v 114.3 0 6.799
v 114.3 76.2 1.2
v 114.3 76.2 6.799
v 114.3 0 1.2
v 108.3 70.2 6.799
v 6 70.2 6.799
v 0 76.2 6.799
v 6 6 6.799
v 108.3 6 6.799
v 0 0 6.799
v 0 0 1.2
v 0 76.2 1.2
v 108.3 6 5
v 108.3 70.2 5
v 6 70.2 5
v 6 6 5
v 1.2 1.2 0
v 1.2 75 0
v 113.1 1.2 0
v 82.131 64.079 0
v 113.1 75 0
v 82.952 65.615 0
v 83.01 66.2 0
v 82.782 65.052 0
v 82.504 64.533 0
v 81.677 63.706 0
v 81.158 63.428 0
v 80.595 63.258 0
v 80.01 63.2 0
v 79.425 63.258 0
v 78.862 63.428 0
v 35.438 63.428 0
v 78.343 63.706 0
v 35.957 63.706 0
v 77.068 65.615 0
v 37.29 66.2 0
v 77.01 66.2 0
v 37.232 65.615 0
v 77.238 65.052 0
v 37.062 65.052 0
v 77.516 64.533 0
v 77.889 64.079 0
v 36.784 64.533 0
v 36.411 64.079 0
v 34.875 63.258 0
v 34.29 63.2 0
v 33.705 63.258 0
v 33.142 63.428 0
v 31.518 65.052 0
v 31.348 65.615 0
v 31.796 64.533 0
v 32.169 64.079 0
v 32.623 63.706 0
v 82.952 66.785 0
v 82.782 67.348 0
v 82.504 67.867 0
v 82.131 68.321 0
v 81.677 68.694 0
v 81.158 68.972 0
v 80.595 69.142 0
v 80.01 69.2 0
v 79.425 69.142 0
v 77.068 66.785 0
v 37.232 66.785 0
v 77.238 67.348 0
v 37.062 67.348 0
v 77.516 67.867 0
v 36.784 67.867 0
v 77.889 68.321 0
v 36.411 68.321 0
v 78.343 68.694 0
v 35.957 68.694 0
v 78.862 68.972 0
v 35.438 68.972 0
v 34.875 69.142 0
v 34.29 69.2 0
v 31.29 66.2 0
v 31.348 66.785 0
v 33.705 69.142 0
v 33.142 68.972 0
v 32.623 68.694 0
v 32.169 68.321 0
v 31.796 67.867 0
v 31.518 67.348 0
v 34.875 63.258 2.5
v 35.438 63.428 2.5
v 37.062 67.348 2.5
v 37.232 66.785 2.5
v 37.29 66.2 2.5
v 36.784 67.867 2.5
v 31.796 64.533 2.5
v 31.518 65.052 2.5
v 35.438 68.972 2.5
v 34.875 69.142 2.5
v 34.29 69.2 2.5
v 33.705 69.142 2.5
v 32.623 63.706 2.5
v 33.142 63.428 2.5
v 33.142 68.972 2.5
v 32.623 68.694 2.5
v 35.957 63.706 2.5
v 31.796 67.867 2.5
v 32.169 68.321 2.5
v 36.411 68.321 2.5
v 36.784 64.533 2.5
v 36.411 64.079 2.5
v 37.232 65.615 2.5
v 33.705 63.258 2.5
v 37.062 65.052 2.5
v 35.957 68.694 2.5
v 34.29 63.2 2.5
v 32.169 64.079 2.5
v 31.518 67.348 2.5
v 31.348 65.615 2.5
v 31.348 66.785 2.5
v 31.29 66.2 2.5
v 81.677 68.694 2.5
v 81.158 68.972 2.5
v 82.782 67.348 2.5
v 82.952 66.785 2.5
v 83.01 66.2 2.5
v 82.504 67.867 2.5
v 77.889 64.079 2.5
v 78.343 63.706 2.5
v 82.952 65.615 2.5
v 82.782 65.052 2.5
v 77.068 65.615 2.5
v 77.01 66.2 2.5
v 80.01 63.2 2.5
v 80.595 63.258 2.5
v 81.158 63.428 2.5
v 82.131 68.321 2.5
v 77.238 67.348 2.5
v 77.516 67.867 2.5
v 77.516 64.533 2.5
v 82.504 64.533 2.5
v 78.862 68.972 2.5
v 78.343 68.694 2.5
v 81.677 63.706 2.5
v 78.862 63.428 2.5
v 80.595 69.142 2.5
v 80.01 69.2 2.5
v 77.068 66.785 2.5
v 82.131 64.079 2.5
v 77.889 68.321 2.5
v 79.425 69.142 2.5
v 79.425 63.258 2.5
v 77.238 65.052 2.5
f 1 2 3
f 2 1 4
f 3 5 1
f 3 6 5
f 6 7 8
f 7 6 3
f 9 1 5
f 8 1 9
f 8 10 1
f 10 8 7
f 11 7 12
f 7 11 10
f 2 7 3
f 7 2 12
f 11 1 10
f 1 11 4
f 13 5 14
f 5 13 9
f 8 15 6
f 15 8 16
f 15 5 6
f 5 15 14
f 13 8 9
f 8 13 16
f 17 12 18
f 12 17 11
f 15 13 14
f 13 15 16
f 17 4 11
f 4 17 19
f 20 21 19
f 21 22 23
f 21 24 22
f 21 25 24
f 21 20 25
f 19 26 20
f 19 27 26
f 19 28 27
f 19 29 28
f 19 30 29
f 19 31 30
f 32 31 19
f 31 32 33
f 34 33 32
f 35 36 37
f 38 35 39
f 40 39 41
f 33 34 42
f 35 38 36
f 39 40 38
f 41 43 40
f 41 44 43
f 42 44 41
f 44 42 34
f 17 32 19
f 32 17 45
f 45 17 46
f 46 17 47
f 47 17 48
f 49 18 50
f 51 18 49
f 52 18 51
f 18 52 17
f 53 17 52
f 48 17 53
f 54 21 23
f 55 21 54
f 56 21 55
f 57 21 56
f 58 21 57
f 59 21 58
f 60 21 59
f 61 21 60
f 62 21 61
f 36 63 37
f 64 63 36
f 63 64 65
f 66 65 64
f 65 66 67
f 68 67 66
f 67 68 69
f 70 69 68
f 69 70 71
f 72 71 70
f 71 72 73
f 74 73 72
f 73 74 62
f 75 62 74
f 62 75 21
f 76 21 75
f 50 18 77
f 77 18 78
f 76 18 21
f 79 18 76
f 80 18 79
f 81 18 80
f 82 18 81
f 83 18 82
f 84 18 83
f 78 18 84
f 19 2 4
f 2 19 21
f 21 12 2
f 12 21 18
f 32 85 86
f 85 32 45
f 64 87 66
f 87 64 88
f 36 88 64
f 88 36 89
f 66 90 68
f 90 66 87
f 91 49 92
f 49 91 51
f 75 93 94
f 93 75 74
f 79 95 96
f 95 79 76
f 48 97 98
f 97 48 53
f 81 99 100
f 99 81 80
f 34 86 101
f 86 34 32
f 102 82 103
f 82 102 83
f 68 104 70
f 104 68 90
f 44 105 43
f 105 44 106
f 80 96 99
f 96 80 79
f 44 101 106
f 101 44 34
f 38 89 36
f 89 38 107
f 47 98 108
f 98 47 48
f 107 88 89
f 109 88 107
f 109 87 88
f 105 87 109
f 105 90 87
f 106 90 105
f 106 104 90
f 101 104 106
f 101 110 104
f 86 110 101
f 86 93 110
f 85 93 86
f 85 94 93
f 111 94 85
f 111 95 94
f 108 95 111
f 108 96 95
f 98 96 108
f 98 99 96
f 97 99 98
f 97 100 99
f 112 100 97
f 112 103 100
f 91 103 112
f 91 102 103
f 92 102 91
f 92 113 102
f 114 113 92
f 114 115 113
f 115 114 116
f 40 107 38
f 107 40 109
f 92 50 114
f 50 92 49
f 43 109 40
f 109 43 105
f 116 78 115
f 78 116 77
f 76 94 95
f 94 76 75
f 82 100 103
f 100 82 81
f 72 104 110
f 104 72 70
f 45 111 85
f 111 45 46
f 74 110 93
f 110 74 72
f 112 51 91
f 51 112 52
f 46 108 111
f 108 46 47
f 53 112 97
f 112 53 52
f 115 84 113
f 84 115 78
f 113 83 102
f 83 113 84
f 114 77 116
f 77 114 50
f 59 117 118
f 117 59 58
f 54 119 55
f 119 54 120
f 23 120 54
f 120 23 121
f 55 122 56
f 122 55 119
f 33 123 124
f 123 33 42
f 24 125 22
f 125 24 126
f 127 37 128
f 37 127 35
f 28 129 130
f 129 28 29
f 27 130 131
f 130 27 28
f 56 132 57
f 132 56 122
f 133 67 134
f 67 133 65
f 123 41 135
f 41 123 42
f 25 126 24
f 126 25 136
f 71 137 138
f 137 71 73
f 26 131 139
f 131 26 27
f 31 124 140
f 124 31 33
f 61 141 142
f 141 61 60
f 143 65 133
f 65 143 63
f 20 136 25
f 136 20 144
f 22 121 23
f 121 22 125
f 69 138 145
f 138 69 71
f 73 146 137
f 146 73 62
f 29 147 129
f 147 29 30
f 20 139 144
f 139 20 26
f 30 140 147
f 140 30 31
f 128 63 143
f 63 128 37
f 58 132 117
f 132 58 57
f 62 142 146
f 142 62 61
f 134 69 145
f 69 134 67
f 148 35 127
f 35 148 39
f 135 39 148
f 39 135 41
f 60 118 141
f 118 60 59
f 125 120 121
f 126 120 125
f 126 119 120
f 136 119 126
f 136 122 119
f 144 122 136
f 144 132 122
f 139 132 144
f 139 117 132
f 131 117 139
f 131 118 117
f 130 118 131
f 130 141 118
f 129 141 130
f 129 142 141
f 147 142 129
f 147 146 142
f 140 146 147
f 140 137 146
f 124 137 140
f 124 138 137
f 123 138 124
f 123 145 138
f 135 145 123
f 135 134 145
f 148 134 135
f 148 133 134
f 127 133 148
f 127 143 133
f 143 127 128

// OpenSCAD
// A stand-in plaque, so the text generator and tools/plaquefit.py can both be
// tested without needing anyone's private artwork in the repository.
//
// Deliberately awkward in the two ways a real CAD export is awkward:
//   - the origin is at a CORNER, not the centre, the way Onshape exports;
//   - a raised border means the bounding-box top is NOT the face the
//     lettering lands on, so anything that assumes "top = bbox top" is wrong.
//
// 4.5 x 3 inches, the size quoted for the real plaque.

W = 114.3;
H = 76.2;
SLAB = 5.0;      // field height above the back
BORDER_W = 6.0;
BORDER_H = 1.8;  // border stands this much proud of the field

module chamfered_slab(w, h, t, c) {
    hull() {
        translate([c, c, 0]) cube([w - 2 * c, h - 2 * c, 0.001]);
        translate([0, 0, c]) cube([w, h, t - c]);
    }
}

difference() {
    union() {
        chamfered_slab(W, H, SLAB, 1.2);
        // border ring
        difference() {
            translate([0, 0, SLAB - 0.001]) cube([W, H, BORDER_H]);
            translate([BORDER_W, BORDER_W, SLAB - 0.5])
                cube([W - 2 * BORDER_W, H - 2 * BORDER_W, BORDER_H + 1]);
        }
    }
    // two keyhole-ish hangers, so the mesh is not a trivial box
    for (x = [W * 0.3, W * 0.7])
        translate([x, H - 10, -0.5]) cylinder(h = 3, d = 6, $fn = 32);
}
